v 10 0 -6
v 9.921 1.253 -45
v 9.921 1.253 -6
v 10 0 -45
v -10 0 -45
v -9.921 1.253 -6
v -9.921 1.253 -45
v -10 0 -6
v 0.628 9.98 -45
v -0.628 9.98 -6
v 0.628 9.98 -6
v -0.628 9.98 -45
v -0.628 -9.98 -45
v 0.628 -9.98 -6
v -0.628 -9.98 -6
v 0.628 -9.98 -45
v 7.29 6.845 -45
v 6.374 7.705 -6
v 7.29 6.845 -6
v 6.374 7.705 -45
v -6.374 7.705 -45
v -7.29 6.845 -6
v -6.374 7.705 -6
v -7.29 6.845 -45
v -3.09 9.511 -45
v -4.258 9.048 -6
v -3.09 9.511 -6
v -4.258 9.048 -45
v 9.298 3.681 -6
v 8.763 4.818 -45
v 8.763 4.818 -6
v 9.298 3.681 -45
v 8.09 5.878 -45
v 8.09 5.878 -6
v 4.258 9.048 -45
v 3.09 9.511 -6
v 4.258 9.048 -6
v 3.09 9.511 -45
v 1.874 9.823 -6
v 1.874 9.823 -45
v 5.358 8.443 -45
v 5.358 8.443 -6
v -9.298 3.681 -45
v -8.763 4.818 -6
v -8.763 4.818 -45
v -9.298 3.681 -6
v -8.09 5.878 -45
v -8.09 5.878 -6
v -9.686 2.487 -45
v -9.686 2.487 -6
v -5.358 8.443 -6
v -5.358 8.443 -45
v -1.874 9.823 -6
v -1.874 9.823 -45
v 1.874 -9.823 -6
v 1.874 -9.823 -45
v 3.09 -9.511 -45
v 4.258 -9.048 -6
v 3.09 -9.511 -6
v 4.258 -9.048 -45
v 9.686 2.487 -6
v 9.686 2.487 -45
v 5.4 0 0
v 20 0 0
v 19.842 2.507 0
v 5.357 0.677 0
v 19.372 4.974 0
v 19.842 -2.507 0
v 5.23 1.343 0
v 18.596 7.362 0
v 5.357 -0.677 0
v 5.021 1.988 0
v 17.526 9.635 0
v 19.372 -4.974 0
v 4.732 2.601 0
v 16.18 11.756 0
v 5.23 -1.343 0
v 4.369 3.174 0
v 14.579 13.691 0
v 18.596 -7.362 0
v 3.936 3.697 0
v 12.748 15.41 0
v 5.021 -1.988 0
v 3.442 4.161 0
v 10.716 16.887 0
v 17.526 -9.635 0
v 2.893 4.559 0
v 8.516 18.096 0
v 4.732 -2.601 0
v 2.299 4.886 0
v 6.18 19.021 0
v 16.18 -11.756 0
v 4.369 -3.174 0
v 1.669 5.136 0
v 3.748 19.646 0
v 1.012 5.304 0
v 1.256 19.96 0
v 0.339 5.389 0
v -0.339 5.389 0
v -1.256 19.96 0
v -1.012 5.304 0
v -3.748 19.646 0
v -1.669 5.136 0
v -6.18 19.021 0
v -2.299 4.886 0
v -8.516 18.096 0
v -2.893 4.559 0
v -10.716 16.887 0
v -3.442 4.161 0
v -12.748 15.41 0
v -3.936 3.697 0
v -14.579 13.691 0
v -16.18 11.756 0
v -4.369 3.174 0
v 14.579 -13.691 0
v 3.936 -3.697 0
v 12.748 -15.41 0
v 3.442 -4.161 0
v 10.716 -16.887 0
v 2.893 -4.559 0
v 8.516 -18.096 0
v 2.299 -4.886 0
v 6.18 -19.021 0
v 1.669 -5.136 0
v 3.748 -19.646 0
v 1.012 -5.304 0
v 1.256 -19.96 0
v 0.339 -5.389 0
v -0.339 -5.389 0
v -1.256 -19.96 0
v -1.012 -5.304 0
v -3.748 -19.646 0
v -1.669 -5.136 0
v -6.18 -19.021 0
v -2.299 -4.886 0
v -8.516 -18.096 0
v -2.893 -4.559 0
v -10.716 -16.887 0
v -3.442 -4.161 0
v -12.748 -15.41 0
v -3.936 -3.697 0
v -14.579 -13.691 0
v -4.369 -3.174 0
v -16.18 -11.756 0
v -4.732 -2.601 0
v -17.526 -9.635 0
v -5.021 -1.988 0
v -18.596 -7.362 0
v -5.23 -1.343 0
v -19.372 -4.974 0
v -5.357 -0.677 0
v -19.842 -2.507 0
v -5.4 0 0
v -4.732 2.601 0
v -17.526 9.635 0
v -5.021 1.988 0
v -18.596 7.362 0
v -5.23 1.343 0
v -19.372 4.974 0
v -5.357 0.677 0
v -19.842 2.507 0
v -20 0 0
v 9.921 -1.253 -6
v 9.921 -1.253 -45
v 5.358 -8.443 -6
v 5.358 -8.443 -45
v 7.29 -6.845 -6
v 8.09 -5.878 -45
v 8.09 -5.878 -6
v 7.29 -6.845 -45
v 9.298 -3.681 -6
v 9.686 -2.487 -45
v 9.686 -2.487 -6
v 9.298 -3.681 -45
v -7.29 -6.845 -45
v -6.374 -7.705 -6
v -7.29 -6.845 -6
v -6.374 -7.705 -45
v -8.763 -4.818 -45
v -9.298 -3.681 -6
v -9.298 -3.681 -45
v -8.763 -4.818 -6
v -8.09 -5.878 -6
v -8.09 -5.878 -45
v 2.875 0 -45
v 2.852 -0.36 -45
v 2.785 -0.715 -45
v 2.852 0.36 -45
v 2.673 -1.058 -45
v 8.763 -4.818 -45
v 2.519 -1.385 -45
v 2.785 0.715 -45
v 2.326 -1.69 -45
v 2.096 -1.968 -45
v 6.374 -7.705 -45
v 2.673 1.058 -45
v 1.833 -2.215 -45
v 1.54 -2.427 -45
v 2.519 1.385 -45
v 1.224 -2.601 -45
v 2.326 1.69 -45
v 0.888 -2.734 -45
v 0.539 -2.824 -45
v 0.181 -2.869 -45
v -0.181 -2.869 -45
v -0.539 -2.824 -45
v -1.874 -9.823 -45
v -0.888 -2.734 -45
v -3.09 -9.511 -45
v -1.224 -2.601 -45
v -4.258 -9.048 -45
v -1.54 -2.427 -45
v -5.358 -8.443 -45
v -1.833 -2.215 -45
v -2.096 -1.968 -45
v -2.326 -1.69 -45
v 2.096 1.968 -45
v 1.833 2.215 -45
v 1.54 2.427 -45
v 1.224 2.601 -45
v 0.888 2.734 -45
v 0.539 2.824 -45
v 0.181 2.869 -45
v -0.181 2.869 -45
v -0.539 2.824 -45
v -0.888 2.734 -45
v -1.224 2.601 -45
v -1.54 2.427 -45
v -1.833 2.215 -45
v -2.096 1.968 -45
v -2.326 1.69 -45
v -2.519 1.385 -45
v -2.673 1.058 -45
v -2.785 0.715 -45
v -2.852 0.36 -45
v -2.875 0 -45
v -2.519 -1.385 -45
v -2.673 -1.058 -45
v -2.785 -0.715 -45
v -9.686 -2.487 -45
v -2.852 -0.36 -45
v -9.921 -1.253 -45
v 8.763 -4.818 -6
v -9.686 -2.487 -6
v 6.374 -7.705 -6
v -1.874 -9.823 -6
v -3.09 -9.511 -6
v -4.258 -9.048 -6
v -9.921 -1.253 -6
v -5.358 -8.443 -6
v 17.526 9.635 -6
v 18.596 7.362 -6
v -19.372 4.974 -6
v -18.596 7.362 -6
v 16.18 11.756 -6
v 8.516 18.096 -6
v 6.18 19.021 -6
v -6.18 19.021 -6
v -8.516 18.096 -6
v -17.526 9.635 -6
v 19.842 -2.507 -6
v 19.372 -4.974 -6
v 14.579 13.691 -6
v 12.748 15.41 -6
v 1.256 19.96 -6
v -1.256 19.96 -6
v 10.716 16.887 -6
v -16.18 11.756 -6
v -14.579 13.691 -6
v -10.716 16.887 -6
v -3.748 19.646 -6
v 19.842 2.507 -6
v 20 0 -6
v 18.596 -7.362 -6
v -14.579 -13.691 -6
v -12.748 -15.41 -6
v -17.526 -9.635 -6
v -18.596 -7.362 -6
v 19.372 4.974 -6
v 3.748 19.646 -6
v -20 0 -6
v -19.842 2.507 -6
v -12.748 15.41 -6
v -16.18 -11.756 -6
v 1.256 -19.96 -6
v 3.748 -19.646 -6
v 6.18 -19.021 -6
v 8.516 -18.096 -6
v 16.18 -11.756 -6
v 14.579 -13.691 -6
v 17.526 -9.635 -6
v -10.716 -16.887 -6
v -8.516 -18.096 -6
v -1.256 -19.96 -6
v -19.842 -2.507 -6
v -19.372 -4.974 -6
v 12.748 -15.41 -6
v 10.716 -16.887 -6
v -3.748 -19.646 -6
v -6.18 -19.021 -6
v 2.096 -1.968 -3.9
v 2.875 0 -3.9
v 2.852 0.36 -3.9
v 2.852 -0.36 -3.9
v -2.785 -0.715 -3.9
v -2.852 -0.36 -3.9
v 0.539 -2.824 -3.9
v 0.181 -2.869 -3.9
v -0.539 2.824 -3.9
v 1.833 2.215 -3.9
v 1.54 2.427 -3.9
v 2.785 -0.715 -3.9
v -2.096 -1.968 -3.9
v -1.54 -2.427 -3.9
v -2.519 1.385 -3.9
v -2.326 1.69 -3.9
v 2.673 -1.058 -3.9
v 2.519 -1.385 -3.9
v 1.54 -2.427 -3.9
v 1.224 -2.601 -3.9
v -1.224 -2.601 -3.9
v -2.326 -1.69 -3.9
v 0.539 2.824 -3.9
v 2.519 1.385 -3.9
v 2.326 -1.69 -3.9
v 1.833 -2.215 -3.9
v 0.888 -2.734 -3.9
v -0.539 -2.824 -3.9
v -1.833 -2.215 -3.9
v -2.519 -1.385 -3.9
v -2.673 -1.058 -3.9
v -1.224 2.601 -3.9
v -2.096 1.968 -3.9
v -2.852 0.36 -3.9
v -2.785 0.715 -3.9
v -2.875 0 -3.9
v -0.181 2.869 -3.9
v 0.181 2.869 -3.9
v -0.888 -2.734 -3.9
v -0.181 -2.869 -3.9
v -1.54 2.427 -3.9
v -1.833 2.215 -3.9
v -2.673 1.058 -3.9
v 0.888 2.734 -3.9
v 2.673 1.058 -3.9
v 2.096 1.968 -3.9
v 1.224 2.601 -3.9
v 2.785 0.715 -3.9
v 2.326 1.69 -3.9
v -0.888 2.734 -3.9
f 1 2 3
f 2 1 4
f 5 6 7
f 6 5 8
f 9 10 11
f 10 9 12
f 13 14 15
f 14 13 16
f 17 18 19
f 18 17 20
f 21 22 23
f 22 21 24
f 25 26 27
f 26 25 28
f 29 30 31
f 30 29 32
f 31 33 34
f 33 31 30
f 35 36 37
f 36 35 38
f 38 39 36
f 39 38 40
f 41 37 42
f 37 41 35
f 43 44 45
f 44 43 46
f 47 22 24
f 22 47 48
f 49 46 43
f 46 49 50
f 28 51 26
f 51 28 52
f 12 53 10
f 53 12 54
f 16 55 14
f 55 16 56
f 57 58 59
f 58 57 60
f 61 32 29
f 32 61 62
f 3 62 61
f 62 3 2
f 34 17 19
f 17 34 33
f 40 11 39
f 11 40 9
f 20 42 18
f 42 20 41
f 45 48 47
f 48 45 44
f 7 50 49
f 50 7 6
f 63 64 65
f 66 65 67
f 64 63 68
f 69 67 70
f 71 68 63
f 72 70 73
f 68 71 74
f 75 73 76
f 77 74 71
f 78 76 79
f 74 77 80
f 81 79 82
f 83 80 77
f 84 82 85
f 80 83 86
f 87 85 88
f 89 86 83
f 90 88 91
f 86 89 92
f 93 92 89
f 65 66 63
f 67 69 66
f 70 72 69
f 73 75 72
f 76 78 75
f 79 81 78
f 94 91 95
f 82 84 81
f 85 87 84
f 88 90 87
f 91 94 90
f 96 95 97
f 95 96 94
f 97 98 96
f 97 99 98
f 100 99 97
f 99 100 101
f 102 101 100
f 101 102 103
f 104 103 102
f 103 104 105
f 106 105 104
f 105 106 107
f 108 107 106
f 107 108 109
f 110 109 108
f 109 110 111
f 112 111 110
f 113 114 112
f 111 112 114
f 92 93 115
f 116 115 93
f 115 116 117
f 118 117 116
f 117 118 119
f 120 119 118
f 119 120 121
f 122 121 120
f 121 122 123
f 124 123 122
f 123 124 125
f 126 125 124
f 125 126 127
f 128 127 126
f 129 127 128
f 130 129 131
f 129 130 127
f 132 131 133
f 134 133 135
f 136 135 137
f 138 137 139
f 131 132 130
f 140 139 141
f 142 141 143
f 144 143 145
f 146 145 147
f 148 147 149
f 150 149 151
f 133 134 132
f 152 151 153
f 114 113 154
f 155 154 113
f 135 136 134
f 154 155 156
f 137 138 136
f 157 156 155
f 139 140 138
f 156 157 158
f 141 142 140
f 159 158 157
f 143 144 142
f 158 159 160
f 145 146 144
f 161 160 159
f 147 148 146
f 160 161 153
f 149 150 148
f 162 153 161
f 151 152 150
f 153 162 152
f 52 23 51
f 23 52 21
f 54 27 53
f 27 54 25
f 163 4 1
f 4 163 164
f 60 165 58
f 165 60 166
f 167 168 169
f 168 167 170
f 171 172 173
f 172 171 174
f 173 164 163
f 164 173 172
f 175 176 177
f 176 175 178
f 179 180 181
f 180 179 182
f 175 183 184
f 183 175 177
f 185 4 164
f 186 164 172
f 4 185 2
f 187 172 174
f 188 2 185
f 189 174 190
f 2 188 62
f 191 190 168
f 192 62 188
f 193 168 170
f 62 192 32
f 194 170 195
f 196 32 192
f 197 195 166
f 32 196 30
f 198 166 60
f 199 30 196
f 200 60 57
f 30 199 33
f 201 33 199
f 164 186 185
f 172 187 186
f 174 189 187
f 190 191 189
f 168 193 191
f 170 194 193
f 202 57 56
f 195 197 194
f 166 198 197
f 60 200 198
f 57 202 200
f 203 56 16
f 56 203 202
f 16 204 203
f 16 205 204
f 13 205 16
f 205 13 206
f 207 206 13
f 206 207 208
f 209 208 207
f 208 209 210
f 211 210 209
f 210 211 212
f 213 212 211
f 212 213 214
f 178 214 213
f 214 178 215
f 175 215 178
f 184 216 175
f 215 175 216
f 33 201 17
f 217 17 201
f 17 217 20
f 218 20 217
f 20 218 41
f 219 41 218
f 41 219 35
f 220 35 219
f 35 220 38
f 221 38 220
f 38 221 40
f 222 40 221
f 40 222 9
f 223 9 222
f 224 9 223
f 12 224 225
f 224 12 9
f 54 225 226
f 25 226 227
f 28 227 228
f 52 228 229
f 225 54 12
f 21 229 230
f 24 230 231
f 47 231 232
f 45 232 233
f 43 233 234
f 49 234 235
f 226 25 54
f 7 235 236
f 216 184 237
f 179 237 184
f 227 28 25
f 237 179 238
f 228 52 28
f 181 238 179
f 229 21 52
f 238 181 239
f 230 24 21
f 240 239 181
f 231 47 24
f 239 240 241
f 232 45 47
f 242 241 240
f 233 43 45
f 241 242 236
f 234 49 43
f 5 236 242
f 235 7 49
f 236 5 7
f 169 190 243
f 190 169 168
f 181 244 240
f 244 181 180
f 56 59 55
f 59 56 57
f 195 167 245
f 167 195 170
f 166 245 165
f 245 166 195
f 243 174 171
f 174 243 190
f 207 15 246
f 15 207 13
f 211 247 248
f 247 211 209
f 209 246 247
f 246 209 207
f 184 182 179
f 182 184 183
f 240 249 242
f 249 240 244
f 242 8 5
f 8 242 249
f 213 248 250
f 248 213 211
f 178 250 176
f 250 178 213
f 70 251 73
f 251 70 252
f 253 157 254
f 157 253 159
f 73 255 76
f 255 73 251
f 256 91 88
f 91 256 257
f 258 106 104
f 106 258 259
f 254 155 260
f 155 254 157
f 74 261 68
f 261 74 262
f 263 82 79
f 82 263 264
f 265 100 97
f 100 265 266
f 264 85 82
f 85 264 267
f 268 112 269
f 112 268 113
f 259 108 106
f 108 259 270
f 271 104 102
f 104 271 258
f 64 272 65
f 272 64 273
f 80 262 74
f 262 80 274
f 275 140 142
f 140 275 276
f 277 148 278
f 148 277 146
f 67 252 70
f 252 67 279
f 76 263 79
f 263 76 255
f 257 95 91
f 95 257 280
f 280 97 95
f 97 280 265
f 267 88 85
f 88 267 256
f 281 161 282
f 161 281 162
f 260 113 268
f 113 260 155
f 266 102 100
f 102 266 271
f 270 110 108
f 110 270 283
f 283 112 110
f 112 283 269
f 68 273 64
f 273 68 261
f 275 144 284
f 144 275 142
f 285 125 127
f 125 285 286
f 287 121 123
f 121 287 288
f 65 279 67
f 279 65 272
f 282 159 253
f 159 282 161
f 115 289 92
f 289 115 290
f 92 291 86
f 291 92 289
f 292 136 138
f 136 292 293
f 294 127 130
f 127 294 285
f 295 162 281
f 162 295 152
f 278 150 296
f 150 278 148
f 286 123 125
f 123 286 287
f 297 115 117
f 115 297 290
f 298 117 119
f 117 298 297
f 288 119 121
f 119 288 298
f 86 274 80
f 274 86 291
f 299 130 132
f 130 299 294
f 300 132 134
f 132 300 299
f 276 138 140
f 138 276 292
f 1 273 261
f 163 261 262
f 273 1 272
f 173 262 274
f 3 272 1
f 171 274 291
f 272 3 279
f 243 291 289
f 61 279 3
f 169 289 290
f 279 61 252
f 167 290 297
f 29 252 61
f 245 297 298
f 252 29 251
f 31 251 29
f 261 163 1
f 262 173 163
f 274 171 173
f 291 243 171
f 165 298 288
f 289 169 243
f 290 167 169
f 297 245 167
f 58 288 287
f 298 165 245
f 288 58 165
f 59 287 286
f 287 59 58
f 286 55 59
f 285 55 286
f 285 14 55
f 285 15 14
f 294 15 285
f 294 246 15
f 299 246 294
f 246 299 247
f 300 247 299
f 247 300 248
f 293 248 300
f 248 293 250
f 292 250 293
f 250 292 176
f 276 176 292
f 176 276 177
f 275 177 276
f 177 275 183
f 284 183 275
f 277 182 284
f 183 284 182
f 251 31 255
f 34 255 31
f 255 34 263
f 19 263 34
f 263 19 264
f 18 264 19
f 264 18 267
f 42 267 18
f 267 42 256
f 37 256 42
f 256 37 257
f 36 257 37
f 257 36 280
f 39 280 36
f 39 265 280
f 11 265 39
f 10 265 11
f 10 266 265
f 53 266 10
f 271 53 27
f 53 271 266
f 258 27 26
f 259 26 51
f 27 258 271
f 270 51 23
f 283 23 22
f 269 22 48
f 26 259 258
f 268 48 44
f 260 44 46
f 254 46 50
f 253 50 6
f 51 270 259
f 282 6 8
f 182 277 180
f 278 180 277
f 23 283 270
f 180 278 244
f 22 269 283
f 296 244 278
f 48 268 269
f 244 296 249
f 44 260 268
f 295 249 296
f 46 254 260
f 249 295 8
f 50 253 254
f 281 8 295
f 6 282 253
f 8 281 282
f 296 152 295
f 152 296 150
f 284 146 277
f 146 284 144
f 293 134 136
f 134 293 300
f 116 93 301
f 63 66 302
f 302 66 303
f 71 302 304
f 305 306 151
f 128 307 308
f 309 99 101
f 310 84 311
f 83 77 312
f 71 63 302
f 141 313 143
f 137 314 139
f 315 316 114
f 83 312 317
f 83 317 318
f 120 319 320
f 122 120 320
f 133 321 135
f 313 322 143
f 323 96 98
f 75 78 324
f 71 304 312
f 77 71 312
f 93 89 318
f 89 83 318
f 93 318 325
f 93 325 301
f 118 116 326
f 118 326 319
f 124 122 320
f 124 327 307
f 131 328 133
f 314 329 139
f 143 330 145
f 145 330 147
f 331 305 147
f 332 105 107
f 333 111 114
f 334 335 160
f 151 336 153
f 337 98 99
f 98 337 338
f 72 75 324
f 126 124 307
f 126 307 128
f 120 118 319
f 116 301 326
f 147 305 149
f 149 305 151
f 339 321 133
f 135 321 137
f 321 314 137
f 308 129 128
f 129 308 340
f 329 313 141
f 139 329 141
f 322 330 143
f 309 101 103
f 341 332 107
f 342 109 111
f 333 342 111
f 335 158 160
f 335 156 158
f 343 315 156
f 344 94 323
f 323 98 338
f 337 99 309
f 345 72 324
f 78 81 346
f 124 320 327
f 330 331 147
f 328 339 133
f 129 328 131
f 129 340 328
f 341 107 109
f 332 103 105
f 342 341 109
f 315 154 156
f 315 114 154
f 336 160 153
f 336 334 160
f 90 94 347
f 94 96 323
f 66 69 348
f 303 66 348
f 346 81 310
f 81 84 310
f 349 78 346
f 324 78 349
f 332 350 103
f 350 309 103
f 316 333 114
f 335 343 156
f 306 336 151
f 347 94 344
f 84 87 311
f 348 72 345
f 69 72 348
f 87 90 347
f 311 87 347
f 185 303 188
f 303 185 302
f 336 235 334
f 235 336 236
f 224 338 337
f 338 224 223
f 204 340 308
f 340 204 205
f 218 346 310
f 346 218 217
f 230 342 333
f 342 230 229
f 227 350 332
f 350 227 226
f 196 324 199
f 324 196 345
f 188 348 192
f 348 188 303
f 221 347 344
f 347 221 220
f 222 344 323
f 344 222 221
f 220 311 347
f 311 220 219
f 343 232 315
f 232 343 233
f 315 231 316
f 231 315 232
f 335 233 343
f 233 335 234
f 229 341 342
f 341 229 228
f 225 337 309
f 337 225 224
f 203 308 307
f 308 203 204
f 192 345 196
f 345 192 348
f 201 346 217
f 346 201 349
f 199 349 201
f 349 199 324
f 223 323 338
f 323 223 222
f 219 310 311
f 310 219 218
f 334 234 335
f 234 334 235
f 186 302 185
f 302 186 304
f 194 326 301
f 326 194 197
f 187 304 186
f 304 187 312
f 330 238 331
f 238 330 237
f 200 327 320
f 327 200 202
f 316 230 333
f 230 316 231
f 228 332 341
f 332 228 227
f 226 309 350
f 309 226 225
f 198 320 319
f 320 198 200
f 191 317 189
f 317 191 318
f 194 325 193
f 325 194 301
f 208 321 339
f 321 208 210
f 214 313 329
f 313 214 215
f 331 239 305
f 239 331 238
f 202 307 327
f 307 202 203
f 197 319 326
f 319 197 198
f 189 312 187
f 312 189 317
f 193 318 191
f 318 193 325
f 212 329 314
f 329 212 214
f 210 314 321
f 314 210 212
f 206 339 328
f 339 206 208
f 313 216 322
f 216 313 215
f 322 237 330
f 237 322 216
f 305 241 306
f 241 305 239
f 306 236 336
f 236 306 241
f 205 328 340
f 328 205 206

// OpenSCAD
$fn = 50;


difference() {
	union() {
		translate(v = [0, 0, -45.0000000000]) {
			cylinder(h = 45, r = 10.0000000000);
		}
		translate(v = [0, 0, -6.0000000000]) {
			cylinder(h = 6, r = 20.0000000000);
		}
	}
	union() {
		translate(v = [0, 0, 0]) {
			rotate(a = [0, 0, 0]) {
				difference() {
					union() {
						#translate(v = [0, 0, -45.0000000000]) {
							cylinder(h = 45, r = 2.6000000000);
						}
						#translate(v = [0, 0, -3.9000000000]) {
							cylinder(h = 3.9000000000, r1 = 2.8750000000, r2 = 5.4000000000);
						}
						#translate(v = [0, 0, -45.0000000000]) {
							cylinder(h = 45, r = 2.8750000000);
						}
						#translate(v = [0, 0, -45.0000000000]) {
							cylinder(h = 45, r = 2.6000000000);
						}
					}
					union();
				}
			}
		}
	}
}
